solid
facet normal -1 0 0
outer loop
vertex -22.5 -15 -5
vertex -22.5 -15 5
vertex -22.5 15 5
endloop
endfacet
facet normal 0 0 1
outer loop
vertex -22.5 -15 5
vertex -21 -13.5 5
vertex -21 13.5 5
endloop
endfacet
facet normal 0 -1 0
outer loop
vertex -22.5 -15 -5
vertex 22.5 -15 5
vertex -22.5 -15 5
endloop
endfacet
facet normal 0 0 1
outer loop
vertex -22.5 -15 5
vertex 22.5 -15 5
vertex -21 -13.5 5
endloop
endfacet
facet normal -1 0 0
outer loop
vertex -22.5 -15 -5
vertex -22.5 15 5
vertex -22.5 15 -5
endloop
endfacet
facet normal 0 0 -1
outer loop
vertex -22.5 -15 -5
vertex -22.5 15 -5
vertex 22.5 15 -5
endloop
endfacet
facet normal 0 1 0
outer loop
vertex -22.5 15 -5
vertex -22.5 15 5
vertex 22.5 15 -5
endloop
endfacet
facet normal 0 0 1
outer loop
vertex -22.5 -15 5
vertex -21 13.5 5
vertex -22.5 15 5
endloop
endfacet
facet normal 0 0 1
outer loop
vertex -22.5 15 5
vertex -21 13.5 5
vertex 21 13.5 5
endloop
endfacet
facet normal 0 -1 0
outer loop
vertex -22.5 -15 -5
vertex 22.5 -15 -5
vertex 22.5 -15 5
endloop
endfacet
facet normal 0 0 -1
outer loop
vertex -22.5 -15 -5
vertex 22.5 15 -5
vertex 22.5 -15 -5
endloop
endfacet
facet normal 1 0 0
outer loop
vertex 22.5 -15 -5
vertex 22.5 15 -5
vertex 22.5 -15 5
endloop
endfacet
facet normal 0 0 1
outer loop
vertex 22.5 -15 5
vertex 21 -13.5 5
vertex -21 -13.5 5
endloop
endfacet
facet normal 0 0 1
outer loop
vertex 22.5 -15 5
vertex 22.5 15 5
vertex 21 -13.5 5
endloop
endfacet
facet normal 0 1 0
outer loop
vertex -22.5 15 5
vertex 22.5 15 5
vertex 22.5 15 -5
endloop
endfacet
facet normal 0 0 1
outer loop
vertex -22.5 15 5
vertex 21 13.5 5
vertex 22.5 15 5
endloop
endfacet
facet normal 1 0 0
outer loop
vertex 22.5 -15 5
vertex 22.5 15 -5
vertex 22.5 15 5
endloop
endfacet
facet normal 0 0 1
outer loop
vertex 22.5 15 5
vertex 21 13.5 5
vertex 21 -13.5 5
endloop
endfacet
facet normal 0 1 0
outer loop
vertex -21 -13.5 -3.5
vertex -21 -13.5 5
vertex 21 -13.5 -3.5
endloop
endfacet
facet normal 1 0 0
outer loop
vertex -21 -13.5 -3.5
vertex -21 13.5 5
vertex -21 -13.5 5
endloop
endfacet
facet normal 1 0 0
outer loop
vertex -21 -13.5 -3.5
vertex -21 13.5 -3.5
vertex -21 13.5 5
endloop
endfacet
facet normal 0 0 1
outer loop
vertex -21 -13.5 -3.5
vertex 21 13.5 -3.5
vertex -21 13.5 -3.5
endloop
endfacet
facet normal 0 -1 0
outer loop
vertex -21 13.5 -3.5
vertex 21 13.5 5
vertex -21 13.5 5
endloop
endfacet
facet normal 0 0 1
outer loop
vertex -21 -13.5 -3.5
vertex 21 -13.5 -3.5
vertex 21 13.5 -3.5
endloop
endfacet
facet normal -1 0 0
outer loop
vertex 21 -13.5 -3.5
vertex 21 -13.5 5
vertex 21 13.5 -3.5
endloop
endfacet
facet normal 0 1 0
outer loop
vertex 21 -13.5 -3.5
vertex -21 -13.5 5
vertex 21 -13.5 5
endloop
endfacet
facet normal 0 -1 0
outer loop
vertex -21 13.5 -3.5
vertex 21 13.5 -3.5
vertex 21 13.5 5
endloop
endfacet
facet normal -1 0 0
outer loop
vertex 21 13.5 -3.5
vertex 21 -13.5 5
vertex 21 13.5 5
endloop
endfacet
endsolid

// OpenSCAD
// GHOST Parametric Model: api_test_bracket
// Generated at 2026-11-11 12:33:18
width = 30;
length = 45;
height = 10;
wall = 1.5;

difference() {
    cube([length, width, height], center=true);
    translate([0, 0, wall])
        cube([length - (wall * 2), width - (wall * 2), height], center=true);
}
